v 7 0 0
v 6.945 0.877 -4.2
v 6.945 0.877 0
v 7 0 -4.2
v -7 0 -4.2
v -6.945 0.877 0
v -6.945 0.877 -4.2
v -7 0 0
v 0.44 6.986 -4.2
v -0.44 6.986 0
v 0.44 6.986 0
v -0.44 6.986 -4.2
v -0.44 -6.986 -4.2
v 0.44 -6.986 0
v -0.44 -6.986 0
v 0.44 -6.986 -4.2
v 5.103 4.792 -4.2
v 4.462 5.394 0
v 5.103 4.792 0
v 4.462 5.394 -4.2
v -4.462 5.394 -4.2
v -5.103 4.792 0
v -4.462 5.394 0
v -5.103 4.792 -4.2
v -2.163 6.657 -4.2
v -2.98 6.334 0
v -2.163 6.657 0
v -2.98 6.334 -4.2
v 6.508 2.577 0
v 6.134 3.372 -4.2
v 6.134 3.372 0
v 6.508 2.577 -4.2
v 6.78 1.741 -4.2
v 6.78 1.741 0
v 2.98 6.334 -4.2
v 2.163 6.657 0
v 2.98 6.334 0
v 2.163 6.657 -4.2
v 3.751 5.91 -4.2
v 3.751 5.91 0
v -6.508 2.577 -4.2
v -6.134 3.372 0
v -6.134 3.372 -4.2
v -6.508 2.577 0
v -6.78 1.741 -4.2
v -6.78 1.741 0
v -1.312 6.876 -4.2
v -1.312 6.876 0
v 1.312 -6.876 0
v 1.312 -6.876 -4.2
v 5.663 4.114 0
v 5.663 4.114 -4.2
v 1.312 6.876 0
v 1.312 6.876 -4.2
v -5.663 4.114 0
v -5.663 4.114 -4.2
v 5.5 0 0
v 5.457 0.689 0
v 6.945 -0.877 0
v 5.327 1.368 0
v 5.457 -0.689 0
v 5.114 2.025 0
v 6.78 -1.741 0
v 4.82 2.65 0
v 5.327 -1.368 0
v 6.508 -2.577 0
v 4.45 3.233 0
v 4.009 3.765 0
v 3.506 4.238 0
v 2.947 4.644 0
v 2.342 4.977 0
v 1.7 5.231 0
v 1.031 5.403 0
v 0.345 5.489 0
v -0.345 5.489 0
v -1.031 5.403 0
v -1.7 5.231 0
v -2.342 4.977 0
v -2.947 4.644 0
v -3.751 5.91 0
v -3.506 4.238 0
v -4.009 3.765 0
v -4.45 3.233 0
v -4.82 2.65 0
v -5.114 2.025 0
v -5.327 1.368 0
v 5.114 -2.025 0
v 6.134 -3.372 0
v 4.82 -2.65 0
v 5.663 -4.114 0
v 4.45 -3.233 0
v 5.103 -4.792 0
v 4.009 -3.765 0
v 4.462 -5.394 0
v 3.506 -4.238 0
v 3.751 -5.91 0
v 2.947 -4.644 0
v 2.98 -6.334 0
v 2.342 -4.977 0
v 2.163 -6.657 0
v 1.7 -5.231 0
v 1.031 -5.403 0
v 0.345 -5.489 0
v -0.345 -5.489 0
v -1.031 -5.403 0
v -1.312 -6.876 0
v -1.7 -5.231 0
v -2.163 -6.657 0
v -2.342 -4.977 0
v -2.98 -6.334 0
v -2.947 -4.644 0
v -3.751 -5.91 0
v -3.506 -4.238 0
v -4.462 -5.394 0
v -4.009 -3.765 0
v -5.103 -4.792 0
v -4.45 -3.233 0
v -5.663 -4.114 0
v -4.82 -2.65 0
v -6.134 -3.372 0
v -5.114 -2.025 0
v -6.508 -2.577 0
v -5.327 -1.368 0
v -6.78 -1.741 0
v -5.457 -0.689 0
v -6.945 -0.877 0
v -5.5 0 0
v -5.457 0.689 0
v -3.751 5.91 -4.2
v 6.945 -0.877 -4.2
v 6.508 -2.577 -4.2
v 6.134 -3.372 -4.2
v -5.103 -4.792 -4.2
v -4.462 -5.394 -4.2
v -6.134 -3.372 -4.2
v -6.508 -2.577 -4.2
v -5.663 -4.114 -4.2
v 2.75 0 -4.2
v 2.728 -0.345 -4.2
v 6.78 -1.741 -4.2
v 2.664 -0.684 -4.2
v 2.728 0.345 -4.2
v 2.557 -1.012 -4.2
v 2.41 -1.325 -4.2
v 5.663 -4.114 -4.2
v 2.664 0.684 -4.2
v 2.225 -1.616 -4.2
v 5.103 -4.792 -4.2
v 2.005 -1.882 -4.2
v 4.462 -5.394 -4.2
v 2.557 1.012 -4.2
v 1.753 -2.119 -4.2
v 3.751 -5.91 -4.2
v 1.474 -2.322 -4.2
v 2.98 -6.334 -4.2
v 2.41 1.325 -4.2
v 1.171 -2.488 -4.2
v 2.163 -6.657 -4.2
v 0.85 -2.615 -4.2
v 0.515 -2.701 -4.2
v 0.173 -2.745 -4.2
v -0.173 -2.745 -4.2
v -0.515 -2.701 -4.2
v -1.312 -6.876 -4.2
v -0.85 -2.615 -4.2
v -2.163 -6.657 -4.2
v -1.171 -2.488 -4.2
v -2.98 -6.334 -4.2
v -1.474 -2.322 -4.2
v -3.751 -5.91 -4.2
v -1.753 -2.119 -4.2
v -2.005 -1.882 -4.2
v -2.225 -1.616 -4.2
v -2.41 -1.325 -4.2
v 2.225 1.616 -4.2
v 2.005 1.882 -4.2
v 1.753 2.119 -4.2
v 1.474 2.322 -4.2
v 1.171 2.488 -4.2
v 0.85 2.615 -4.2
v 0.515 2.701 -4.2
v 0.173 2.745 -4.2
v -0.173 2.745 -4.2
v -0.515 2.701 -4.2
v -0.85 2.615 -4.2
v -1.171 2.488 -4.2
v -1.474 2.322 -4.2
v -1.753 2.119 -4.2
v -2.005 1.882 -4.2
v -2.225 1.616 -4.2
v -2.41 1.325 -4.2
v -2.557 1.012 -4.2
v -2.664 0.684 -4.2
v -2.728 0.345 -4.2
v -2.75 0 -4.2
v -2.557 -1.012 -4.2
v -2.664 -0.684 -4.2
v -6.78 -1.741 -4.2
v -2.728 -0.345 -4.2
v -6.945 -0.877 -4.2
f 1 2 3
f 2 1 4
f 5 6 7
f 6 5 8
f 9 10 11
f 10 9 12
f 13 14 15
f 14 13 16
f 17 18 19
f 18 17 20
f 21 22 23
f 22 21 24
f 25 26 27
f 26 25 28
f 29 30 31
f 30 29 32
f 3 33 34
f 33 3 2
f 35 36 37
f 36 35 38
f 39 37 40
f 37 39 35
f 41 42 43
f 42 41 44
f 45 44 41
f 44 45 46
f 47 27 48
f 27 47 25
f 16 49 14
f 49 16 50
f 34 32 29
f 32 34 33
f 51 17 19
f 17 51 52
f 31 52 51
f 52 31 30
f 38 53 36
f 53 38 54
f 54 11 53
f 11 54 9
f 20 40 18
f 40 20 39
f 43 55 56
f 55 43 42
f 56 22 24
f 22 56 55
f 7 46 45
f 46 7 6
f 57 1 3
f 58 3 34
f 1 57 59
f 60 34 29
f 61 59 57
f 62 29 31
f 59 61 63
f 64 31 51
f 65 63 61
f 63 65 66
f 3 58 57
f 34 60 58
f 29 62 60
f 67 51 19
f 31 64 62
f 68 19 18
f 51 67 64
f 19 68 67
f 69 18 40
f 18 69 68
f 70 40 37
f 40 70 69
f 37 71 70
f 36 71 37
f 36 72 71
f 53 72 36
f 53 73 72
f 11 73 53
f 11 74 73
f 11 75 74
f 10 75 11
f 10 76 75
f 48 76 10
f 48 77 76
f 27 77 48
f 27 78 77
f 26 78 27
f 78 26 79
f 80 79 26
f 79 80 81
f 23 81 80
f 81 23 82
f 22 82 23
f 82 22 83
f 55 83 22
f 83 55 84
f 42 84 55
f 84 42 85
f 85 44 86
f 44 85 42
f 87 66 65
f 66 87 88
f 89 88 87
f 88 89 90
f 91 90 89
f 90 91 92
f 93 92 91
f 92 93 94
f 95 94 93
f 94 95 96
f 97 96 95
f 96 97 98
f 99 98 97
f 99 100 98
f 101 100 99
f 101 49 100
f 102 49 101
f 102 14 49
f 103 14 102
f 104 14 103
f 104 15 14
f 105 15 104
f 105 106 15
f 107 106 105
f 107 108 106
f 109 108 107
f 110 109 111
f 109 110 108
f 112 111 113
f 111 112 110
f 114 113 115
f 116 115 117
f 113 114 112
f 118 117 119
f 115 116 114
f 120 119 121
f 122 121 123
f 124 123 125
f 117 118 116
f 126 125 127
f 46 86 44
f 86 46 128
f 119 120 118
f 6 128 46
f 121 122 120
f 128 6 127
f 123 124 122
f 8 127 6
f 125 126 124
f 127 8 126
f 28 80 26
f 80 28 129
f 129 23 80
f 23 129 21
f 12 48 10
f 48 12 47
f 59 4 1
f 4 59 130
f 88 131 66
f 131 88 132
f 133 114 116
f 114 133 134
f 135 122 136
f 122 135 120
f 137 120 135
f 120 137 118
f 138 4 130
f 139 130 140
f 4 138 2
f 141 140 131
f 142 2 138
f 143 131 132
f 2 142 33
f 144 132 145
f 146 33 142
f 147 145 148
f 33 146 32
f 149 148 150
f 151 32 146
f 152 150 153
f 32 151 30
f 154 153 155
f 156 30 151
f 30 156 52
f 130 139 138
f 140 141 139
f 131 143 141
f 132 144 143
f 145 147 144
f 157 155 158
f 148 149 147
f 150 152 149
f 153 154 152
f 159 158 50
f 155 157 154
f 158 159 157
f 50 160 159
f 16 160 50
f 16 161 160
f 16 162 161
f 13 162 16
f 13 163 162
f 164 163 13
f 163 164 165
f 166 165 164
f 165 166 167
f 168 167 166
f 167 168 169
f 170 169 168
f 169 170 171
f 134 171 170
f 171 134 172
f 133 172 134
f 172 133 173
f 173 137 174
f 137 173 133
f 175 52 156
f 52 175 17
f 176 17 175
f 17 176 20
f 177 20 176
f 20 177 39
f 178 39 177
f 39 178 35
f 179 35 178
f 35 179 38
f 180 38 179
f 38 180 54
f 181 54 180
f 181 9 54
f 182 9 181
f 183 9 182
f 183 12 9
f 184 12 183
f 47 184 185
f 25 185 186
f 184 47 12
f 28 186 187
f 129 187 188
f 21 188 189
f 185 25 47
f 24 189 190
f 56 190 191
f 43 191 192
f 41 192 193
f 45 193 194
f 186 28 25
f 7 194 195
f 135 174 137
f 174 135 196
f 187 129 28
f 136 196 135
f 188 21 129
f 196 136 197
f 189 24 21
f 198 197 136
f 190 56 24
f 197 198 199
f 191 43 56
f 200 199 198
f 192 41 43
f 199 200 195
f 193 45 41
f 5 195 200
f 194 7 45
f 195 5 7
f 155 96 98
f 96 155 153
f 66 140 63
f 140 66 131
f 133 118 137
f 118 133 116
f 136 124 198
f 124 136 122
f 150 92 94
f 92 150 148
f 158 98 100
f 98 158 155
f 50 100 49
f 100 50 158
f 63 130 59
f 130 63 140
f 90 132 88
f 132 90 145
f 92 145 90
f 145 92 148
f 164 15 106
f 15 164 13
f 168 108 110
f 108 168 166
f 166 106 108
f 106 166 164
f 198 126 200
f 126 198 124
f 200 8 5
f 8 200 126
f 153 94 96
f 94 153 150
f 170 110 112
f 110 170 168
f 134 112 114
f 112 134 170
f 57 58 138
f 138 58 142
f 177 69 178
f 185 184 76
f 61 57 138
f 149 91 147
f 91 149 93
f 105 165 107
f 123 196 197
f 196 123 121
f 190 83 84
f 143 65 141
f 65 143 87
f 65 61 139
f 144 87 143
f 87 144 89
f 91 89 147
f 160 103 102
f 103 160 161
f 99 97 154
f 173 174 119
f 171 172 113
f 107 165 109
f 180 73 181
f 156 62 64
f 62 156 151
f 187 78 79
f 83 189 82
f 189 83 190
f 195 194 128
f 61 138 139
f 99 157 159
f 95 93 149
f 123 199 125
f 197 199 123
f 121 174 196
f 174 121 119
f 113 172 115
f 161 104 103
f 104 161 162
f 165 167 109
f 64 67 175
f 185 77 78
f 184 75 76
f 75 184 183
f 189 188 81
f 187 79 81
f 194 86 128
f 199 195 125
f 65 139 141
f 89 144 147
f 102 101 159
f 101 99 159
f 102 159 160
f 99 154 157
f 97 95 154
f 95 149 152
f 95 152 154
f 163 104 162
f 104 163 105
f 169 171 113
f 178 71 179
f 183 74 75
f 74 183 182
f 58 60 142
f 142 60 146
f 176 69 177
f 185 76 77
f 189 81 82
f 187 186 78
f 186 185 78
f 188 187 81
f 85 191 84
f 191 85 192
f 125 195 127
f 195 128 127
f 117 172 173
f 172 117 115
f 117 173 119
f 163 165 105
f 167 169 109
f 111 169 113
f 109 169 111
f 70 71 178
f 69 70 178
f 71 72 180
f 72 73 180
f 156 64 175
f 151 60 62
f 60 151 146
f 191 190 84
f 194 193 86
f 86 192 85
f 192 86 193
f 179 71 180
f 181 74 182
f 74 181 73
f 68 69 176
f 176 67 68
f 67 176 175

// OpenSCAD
$fn = 50;


difference() {
	union() {
		translate(v = [0, 0, -4.2000000000]) {
			cylinder(h = 4.2000000000, r = 7.0000000000);
		}
		translate(v = [0, 0, -4.2000000000]) {
			cylinder(h = 4.2000000000, r = 2.8750000000);
		}
	}
	union() {
		translate(v = [0, 0, 0]) {
			rotate(a = [0, 0, 0]) {
				difference() {
					union() {
						#translate(v = [0, 0, -4.2000000000]) {
							cylinder(h = 4.2000000000, r = 2.2500000000);
						}
						#translate(v = [0, 0, -4.2000000000]) {
							cylinder(h = 4.2000000000, r1 = 2.7500000000, r2 = 5.5000000000);
						}
						#translate(v = [0, 0, -4.2000000000]) {
							cylinder(h = 4.2000000000, r = 2.7500000000);
						}
						#translate(v = [0, 0, -4.2000000000]) {
							cylinder(h = 4.2000000000, r = 2.2500000000);
						}
					}
					union();
				}
			}
		}
	}
}
